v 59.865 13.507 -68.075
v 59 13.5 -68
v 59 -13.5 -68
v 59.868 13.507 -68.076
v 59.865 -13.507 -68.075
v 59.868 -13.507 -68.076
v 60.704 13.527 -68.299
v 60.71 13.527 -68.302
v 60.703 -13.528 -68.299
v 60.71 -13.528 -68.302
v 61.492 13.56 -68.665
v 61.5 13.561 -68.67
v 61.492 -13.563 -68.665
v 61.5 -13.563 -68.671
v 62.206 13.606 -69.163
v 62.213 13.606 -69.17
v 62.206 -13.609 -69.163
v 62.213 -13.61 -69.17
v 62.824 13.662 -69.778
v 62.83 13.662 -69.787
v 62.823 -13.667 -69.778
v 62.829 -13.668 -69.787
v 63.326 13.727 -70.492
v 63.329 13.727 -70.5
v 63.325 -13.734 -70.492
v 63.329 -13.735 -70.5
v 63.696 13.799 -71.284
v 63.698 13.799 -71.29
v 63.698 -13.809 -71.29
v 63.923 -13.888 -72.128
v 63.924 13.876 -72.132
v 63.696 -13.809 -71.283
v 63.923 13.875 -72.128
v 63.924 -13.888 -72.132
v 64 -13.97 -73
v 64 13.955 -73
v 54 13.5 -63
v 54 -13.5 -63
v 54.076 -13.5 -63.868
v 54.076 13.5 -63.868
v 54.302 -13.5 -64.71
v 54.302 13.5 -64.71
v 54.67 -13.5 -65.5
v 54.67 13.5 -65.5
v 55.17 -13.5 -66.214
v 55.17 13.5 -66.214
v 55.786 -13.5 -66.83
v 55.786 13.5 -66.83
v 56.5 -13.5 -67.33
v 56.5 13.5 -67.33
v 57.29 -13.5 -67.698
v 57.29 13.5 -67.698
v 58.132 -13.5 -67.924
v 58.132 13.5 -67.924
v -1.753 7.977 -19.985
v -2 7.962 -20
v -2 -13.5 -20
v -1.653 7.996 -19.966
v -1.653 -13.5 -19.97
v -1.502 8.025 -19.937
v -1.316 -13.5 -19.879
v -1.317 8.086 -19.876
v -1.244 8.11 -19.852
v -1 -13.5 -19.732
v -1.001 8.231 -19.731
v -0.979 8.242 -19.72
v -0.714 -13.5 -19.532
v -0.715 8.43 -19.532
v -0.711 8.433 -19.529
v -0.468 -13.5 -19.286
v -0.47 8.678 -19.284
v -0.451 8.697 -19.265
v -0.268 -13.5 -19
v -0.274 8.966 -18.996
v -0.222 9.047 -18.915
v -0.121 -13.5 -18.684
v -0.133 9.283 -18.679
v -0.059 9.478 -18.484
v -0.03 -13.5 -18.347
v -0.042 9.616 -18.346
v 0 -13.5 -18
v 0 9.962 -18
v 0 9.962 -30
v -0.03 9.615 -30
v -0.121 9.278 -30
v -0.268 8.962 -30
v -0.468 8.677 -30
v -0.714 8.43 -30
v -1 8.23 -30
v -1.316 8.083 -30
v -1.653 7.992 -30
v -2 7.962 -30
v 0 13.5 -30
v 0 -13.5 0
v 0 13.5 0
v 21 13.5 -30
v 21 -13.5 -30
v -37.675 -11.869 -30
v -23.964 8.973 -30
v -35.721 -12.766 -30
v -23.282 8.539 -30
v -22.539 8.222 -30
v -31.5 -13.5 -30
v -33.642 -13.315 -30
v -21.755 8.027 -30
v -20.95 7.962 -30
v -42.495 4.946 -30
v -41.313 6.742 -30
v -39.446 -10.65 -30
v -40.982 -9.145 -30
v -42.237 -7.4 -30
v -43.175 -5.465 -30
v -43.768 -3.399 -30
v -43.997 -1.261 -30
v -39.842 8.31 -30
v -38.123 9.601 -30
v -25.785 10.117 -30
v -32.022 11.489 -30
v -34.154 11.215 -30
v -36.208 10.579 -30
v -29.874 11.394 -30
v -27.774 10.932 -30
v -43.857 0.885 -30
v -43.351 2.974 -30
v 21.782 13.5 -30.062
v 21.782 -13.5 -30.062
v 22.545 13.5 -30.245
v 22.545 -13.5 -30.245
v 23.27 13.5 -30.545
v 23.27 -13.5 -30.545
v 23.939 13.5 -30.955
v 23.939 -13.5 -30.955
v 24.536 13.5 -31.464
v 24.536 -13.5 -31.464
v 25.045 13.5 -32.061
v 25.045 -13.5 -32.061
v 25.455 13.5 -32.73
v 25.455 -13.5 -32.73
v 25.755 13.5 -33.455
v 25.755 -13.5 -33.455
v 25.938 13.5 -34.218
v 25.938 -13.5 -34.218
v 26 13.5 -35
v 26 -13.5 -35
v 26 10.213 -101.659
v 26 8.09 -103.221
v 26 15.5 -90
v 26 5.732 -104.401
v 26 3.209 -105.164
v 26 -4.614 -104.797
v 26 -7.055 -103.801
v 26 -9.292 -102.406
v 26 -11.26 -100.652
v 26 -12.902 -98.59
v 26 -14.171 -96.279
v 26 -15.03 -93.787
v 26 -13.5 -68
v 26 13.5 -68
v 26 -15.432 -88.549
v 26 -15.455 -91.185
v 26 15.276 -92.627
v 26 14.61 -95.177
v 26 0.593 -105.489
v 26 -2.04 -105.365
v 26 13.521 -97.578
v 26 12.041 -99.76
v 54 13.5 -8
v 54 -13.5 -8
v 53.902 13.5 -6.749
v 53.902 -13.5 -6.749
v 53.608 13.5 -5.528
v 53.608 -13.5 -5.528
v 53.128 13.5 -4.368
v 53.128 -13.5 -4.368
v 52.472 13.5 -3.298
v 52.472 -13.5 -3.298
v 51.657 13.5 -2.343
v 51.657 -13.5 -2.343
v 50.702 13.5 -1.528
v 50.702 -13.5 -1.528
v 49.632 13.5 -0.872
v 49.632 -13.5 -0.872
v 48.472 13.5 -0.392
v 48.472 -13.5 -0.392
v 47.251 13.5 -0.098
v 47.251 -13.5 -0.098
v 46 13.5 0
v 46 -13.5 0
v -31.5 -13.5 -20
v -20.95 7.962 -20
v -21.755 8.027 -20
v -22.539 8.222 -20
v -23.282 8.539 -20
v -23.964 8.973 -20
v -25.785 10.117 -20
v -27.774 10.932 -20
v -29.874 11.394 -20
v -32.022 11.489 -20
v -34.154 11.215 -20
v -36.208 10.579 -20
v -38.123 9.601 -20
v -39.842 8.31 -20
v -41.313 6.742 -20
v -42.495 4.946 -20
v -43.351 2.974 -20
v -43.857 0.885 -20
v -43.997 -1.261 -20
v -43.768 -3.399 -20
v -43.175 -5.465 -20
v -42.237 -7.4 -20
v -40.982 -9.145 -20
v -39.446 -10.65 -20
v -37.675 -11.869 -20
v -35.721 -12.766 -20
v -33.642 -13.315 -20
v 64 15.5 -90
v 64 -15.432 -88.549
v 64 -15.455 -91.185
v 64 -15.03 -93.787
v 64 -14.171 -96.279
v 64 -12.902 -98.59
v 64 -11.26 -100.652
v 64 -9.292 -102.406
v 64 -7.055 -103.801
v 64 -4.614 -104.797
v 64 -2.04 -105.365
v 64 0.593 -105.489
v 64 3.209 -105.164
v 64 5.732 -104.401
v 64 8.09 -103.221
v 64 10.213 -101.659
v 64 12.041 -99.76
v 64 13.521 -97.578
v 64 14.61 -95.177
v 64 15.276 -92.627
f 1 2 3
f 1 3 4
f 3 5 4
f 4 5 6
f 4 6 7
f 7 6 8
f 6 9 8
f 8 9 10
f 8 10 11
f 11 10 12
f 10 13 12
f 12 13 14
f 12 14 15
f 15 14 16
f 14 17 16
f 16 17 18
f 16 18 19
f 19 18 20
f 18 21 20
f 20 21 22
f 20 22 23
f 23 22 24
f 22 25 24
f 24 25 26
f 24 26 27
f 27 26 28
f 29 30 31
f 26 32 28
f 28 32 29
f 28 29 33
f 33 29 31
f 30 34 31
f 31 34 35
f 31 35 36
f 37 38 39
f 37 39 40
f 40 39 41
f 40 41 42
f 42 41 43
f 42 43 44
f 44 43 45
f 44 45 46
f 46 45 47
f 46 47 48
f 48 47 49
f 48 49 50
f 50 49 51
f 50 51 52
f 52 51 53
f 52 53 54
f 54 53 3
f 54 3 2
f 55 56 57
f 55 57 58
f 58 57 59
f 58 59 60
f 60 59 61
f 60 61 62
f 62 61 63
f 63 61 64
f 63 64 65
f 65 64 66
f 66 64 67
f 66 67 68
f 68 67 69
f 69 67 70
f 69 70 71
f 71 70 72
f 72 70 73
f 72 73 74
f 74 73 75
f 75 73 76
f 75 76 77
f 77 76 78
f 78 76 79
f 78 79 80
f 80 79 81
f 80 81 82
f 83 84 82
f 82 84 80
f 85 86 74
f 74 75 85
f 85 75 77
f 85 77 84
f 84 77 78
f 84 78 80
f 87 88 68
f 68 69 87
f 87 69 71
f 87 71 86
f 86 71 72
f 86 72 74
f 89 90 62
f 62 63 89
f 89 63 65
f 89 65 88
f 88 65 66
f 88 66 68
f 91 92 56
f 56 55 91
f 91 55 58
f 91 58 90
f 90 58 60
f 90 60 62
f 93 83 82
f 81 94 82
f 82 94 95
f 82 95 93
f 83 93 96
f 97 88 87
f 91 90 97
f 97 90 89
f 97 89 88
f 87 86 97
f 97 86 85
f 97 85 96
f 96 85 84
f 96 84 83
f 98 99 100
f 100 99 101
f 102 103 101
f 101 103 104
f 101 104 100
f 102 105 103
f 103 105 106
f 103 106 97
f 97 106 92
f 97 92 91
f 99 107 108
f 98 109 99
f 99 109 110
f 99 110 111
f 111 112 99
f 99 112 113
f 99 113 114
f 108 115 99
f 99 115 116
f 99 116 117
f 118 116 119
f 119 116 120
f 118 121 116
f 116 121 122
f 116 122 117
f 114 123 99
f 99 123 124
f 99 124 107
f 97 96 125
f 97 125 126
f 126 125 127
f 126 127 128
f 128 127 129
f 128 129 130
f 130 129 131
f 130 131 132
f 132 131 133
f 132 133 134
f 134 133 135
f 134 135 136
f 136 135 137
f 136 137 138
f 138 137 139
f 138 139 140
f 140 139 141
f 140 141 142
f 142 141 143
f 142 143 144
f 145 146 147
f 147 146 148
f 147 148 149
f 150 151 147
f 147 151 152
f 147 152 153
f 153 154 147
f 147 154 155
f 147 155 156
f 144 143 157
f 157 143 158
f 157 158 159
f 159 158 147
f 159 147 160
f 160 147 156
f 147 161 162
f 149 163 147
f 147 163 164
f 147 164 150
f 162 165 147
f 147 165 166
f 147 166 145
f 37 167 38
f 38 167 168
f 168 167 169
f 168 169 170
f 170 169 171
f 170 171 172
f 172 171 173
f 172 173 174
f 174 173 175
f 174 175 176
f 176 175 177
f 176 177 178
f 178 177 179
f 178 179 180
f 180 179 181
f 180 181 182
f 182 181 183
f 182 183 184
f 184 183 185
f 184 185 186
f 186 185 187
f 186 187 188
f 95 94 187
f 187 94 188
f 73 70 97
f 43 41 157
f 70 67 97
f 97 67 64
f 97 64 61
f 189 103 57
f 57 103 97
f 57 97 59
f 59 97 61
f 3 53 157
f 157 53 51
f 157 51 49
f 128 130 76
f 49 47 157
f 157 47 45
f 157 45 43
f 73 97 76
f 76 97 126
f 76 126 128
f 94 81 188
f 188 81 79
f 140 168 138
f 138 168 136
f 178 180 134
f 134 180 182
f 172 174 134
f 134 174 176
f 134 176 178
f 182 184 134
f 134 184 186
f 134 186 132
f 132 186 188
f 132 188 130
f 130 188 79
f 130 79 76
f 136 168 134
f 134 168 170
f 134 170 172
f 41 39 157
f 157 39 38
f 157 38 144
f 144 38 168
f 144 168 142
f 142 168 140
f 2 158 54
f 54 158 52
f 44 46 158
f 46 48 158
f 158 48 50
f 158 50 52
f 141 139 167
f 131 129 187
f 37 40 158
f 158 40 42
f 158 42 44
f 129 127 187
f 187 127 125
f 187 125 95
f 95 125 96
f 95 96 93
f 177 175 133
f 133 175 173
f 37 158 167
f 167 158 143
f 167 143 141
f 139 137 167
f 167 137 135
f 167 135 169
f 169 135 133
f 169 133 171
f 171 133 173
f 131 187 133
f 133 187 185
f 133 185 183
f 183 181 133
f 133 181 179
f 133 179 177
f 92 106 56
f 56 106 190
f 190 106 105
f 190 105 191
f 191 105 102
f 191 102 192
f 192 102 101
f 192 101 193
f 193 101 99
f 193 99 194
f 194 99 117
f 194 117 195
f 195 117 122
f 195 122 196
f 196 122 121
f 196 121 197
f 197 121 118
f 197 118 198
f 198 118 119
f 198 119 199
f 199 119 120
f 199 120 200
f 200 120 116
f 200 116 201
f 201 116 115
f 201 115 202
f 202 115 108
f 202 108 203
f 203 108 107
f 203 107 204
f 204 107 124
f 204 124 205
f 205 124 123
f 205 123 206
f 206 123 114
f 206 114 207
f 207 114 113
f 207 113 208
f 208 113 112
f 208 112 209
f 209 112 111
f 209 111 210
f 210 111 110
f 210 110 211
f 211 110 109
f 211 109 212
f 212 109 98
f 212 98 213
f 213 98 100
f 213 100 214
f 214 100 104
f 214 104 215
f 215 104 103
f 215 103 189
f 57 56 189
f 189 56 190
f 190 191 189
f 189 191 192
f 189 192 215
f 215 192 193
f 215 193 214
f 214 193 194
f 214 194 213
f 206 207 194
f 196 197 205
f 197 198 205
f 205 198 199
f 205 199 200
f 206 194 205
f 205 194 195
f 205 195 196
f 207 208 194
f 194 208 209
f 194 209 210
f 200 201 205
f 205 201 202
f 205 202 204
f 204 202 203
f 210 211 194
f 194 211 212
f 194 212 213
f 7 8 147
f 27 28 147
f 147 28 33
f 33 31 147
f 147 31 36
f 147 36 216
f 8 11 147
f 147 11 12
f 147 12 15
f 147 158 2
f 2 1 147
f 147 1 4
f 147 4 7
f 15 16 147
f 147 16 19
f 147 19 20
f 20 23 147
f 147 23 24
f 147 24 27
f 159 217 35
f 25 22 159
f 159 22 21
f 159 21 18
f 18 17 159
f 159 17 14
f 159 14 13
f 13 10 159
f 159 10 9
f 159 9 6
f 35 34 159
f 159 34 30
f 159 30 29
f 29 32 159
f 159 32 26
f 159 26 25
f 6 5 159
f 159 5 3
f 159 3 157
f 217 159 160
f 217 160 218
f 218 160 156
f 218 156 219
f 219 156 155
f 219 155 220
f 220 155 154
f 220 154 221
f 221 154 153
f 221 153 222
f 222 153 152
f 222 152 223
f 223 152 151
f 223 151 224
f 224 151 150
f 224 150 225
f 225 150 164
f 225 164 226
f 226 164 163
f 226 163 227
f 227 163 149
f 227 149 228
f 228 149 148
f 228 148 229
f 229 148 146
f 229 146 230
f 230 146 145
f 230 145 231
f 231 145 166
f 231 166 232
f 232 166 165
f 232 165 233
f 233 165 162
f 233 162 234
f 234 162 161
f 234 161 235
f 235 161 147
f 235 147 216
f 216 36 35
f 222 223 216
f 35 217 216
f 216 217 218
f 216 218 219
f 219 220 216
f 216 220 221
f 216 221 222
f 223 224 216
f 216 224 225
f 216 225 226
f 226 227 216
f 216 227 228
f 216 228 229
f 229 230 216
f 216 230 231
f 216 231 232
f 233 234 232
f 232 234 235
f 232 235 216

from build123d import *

# Parameters (mm, degrees)
BOSS_EXTRUDE1_DEPTH      = 13.5
BOSS_EXTRUDE1_DEPTH_BACK = 13.5
BOSS_EXTRUDE2_START      = -30
BOSS_EXTRUDE2_DEPTH      = 10
FILLET3_R                = 2
BOSS_EXTRUDE3_DEPTH      = 38
FILLET4_R                = 5
FILLET5_R                = 5


with BuildPart() as part:
    # Sketch1 → Boss-Extrude1 (new, two sides: drawn at the far end of the back side and taken through both)
    with BuildSketch(Plane(origin=(0, 0, 0), x_dir=(1, 0, 0), z_dir=(0, 1, 0)).offset(-BOSS_EXTRUDE1_DEPTH_BACK)):
        with BuildLine():
            Line((0, 0), (46, 0))
            ThreePointArc((46, 0), (51.656854249, 2.343145751), (54, 8))
            Line((54, 8), (54, 68))
            Line((54, 68), (26, 68))
            Line((26, 68), (26, 35))
            ThreePointArc((26, 35), (24.535533906, 31.464466094), (21, 30))
            Line((21, 30), (0, 30))
            Line((0, 30), (0, 15))
            Line((0, 15), (0, 0))
        make_face()
    extrude(amount=BOSS_EXTRUDE1_DEPTH + BOSS_EXTRUDE1_DEPTH_BACK)

    # Sketch2 → Boss-Extrude2 (add)
    with BuildSketch(Plane.XY.offset(BOSS_EXTRUDE2_START)):
        with BuildLine():
            Line((0, -13.5), (-31.5, -13.5))
            ThreePointArc((-31.5, -13.5), (-43.351405537, 2.974190082), (-23.964041865, 8.972930111))
            ThreePointArc((-23.964041865, 8.972930111), (-22.539334644, 8.22153994), (-20.949658611, 7.962102155))
            Line((-20.949658611, 7.962102155), (0, 7.962102155))
            Line((0, 7.962102155), (0, -13.5))
        make_face()
    extrude(amount=BOSS_EXTRUDE2_DEPTH)

    # Fillet3
    fillet3_edges = [part.edges().sort_by_distance(p)[0] for p in [
        (0, 7.962102155, -25),
        (0, -2.768948923, -20),
    ]]
    fillet(fillet3_edges, radius=FILLET3_R)

    # Sketch4 → Boss-Extrude3 (add)
    with BuildSketch(Plane.ZY.offset(-26)):
        with BuildLine():
            ThreePointArc((-90, 15.5), (-105.482977781, -0.726222431), (-88.549150224, -15.431948514))
            Line((-88.549150224, -15.431948514), (-68, -13.5))
            Line((-68, -13.5), (-68, 13.5))
            Line((-68, 13.5), (-87.204918033, 15.245901639))
            Line((-87.204918033, 15.245901639), (-90, 15.5))
        make_face()
    extrude(amount=-BOSS_EXTRUDE3_DEPTH)

    # Fillet4
    fillet4_edges = [part.edges().sort_by_distance(p)[0] for p in [
        (54, 0, -68),
    ]]
    fillet(fillet4_edges, radius=FILLET4_R)

    # Fillet5
    fillet5_edges = [part.edges().sort_by_distance(p)[0] for p in [
        (64, 0, -68),
    ]]
    fillet(fillet5_edges, radius=FILLET5_R - 0.0001)  # a hair under: the kernel refuses the full size


solid = part.part
